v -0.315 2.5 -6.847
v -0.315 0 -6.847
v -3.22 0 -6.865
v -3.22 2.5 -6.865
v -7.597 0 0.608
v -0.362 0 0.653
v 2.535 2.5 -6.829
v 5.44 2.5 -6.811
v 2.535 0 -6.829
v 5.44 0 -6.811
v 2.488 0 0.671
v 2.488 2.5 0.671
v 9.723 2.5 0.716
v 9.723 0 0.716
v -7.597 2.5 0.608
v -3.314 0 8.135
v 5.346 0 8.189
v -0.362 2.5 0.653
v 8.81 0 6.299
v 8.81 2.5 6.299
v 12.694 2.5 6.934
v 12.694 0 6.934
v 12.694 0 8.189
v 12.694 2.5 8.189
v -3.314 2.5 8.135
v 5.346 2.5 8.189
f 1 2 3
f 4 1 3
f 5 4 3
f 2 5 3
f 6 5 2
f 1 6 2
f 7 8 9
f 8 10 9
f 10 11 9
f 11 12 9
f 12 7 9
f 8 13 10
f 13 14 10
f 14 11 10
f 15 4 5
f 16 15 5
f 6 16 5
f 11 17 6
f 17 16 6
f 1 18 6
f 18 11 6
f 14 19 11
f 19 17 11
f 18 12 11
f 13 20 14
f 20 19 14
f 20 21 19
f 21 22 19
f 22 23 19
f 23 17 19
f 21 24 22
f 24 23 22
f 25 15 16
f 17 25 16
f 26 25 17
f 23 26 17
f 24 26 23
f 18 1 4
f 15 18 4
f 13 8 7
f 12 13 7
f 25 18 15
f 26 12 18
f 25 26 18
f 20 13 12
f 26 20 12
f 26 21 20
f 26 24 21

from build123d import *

# Parameters (mm, degrees)
BOSS_EXTRUDE1_DEPTH = 2.5
SKETCH2_W           = 2.85
SKETCH2_H           = 2.5
CUT_EXTRUDE1_DEPTH  = 7.5


with BuildPart() as part:
    # Sketch1 → Boss-Extrude1 (new body)
    with BuildSketch(Plane(origin=(0, 0, 0), x_dir=(1, 0, 0), z_dir=(0, 1, 0))):
        Polygon((12.694105225, -6.934131302), (12.694105225, -8.188855223), (5.34603962, -8.188855223), (-3.3140449, -8.134669239), (-7.59716072, -0.607723054), (-3.220192022, 6.865037146), (5.439892498, 6.810851162), (9.723008318, -0.716095023), (8.810324475, -6.299245302), align=None)
    extrude(amount=BOSS_EXTRUDE1_DEPTH)

    # Sketch2 → Cut-Extrude1 (cut)
    with BuildSketch(Plane(origin=(0.04282666, 0, -6.8446205), x_dir=(-0.999980426, 0, -0.006256859), z_dir=(0.006256859, 0, -0.999980426))):
        with Locations((-1.067171483, 1.25)):
            Rectangle(SKETCH2_W, SKETCH2_H)
    extrude(amount=-CUT_EXTRUDE1_DEPTH, mode=Mode.SUBTRACT)


solid = part.part
